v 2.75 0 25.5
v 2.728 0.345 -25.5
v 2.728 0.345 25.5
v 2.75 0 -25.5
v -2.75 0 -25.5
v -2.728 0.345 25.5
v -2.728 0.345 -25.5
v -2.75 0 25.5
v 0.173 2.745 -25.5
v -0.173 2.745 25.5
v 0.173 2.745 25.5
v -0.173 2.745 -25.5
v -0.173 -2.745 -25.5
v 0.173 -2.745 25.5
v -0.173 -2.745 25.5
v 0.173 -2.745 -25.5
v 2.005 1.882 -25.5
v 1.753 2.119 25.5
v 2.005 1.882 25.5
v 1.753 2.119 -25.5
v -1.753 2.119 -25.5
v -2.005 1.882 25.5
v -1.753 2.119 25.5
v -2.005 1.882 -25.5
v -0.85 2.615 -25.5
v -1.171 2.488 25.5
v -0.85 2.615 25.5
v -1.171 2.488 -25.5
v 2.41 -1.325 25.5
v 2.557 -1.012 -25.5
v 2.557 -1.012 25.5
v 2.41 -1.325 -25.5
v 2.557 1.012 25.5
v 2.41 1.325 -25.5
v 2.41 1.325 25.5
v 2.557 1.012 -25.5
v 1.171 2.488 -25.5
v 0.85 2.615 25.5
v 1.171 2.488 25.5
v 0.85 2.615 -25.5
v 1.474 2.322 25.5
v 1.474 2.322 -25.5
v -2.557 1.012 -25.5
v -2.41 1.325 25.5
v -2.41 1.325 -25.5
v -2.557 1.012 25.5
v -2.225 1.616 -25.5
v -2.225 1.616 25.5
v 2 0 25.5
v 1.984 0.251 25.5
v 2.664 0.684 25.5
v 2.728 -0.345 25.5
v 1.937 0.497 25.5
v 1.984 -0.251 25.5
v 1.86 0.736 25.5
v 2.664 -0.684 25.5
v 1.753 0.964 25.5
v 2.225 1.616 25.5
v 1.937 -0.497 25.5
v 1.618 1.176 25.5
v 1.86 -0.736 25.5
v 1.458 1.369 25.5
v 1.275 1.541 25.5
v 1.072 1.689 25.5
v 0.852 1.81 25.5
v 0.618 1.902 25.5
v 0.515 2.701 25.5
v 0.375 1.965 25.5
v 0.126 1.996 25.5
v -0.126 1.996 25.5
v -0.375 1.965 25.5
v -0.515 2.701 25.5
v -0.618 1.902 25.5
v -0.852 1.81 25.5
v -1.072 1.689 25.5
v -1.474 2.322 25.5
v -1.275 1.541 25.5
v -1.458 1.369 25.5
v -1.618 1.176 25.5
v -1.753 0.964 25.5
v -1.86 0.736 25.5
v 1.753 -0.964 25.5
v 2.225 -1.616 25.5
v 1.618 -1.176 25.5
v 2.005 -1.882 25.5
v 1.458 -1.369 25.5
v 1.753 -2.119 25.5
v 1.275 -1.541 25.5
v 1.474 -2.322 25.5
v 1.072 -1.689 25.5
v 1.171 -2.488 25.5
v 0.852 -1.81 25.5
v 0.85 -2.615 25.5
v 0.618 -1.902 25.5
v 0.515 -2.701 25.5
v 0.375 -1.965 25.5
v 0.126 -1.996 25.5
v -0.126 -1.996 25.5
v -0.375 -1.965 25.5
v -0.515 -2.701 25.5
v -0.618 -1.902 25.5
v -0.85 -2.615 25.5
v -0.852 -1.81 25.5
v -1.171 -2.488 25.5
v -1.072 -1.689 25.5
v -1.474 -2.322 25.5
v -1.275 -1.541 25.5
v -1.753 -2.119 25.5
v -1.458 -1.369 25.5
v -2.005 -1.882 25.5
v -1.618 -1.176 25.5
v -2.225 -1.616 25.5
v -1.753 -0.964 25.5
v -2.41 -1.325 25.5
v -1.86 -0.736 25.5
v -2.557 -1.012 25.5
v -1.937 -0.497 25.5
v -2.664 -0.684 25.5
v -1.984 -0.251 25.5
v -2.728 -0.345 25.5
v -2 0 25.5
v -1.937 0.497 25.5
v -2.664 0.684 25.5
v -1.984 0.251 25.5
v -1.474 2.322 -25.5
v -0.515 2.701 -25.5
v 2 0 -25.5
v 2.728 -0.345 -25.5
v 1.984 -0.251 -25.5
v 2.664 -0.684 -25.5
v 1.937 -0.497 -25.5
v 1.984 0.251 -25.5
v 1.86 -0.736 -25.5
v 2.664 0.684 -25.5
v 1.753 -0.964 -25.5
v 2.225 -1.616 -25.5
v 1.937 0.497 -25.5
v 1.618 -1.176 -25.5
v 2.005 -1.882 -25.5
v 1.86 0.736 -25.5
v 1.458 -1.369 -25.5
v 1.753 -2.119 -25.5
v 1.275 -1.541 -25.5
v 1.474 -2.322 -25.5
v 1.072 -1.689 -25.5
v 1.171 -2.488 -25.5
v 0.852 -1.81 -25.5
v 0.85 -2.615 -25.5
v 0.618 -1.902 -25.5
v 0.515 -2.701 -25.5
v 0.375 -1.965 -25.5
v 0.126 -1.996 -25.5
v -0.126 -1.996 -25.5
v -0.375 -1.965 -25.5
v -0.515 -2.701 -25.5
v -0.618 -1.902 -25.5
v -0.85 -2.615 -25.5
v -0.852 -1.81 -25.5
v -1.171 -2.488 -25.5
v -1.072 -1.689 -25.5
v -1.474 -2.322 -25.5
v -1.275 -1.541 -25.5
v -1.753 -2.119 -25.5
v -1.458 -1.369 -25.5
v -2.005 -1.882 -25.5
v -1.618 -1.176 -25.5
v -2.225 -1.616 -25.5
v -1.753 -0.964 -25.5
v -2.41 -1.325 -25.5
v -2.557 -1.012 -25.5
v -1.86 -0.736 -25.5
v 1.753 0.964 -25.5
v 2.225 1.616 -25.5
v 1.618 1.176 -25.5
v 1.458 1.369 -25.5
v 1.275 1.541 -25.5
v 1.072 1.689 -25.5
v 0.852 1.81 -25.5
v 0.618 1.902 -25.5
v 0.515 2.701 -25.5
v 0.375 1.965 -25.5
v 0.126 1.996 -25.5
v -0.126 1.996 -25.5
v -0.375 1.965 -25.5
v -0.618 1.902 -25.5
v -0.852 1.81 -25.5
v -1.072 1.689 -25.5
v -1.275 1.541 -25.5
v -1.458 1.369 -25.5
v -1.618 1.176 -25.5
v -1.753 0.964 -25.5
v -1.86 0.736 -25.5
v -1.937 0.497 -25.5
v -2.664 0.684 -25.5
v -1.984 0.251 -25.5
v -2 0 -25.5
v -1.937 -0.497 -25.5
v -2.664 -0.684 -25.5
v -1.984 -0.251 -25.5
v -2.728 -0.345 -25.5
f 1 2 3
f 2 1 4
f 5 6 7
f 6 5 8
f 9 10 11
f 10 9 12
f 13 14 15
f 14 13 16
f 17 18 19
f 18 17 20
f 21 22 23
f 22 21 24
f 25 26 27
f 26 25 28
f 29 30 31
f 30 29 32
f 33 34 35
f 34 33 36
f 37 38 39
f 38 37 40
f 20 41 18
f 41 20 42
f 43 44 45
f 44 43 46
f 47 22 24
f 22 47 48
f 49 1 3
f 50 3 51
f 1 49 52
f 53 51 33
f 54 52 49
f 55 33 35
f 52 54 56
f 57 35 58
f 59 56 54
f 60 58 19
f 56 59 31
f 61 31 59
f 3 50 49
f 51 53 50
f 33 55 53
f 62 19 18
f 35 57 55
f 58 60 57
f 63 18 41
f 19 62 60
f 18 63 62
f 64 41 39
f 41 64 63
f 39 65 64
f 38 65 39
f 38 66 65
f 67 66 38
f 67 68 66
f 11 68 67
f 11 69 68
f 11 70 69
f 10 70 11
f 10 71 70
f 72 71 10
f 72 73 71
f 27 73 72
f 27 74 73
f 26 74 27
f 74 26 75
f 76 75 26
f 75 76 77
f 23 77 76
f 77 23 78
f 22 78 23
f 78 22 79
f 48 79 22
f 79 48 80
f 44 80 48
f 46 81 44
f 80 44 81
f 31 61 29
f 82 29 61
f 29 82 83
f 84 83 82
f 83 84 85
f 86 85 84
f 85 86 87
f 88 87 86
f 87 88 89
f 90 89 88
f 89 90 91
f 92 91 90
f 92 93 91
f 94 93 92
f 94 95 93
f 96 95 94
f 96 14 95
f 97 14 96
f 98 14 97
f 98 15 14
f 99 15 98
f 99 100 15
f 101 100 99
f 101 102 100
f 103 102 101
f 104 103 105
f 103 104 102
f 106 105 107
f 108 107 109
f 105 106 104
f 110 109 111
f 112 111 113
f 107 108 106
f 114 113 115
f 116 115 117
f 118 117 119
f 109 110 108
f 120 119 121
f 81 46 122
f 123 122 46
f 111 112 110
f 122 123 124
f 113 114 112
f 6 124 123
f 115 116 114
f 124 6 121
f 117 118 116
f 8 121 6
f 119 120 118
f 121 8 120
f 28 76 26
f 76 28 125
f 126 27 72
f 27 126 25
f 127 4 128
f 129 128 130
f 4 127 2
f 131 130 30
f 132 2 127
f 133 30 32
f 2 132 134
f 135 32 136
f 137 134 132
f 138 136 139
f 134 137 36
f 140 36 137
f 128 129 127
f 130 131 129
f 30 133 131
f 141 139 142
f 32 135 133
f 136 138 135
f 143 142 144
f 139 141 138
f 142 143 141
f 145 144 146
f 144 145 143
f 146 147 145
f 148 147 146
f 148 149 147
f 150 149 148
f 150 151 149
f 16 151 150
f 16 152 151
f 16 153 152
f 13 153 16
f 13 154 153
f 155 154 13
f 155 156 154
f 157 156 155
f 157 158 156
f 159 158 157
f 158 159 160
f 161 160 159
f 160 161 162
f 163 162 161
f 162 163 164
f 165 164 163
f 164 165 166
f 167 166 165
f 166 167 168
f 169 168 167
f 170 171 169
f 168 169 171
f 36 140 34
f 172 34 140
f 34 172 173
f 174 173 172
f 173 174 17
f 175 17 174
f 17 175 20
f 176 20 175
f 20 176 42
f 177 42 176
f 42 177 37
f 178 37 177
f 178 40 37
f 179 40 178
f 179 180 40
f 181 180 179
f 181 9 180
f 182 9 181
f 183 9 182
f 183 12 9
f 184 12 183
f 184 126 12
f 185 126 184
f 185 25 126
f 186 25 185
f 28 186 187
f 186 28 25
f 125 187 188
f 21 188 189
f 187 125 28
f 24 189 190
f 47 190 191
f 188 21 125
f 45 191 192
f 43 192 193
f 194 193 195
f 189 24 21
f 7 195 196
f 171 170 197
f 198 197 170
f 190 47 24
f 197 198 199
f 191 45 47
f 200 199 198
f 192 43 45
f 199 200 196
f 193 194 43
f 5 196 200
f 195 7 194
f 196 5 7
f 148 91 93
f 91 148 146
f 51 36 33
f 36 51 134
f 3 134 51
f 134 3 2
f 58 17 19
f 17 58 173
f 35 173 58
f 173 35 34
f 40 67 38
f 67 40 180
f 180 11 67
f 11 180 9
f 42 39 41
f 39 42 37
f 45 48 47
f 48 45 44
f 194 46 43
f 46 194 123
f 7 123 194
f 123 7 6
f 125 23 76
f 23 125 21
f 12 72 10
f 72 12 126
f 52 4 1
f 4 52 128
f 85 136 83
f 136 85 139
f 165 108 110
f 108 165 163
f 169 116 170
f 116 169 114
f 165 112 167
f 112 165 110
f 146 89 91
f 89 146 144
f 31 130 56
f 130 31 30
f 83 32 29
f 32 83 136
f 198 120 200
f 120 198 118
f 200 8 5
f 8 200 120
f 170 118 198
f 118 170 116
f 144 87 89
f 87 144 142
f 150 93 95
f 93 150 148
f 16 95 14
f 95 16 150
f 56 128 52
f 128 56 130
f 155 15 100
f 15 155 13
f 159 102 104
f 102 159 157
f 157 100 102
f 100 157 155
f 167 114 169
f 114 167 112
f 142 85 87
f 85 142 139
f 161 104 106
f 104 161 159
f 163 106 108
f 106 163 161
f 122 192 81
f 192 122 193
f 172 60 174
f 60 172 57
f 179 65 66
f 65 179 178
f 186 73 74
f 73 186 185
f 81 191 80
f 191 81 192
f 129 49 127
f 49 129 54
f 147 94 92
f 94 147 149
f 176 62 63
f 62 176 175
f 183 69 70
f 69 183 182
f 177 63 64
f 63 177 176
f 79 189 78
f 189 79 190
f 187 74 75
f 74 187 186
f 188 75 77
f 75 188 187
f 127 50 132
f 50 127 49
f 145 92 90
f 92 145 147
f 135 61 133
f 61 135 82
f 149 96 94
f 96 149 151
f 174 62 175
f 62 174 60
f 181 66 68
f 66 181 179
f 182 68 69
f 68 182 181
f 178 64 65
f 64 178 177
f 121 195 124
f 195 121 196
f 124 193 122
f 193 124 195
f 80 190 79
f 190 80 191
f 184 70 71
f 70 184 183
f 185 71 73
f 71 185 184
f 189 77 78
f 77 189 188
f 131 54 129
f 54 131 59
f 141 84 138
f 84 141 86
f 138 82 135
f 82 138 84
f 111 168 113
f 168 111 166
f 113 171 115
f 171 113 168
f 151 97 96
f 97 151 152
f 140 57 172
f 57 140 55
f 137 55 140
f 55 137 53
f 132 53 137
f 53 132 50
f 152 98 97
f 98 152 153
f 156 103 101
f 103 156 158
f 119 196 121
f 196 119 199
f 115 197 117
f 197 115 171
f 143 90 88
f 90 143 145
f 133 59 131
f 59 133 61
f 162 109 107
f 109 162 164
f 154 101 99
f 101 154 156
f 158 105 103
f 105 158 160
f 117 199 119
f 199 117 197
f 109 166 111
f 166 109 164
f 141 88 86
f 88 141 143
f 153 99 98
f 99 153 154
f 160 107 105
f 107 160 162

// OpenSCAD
$fn = 50;


difference() {
	union() {
		translate(v = [0, 0, -25.5000000000]) {
			cylinder(h = 51, r = 2.7500000000);
		}
	}
	union() {
		translate(v = [0, 0, -100.0000000000]) {
			cylinder(h = 200, r = 2.0000000000);
		}
	}
}
